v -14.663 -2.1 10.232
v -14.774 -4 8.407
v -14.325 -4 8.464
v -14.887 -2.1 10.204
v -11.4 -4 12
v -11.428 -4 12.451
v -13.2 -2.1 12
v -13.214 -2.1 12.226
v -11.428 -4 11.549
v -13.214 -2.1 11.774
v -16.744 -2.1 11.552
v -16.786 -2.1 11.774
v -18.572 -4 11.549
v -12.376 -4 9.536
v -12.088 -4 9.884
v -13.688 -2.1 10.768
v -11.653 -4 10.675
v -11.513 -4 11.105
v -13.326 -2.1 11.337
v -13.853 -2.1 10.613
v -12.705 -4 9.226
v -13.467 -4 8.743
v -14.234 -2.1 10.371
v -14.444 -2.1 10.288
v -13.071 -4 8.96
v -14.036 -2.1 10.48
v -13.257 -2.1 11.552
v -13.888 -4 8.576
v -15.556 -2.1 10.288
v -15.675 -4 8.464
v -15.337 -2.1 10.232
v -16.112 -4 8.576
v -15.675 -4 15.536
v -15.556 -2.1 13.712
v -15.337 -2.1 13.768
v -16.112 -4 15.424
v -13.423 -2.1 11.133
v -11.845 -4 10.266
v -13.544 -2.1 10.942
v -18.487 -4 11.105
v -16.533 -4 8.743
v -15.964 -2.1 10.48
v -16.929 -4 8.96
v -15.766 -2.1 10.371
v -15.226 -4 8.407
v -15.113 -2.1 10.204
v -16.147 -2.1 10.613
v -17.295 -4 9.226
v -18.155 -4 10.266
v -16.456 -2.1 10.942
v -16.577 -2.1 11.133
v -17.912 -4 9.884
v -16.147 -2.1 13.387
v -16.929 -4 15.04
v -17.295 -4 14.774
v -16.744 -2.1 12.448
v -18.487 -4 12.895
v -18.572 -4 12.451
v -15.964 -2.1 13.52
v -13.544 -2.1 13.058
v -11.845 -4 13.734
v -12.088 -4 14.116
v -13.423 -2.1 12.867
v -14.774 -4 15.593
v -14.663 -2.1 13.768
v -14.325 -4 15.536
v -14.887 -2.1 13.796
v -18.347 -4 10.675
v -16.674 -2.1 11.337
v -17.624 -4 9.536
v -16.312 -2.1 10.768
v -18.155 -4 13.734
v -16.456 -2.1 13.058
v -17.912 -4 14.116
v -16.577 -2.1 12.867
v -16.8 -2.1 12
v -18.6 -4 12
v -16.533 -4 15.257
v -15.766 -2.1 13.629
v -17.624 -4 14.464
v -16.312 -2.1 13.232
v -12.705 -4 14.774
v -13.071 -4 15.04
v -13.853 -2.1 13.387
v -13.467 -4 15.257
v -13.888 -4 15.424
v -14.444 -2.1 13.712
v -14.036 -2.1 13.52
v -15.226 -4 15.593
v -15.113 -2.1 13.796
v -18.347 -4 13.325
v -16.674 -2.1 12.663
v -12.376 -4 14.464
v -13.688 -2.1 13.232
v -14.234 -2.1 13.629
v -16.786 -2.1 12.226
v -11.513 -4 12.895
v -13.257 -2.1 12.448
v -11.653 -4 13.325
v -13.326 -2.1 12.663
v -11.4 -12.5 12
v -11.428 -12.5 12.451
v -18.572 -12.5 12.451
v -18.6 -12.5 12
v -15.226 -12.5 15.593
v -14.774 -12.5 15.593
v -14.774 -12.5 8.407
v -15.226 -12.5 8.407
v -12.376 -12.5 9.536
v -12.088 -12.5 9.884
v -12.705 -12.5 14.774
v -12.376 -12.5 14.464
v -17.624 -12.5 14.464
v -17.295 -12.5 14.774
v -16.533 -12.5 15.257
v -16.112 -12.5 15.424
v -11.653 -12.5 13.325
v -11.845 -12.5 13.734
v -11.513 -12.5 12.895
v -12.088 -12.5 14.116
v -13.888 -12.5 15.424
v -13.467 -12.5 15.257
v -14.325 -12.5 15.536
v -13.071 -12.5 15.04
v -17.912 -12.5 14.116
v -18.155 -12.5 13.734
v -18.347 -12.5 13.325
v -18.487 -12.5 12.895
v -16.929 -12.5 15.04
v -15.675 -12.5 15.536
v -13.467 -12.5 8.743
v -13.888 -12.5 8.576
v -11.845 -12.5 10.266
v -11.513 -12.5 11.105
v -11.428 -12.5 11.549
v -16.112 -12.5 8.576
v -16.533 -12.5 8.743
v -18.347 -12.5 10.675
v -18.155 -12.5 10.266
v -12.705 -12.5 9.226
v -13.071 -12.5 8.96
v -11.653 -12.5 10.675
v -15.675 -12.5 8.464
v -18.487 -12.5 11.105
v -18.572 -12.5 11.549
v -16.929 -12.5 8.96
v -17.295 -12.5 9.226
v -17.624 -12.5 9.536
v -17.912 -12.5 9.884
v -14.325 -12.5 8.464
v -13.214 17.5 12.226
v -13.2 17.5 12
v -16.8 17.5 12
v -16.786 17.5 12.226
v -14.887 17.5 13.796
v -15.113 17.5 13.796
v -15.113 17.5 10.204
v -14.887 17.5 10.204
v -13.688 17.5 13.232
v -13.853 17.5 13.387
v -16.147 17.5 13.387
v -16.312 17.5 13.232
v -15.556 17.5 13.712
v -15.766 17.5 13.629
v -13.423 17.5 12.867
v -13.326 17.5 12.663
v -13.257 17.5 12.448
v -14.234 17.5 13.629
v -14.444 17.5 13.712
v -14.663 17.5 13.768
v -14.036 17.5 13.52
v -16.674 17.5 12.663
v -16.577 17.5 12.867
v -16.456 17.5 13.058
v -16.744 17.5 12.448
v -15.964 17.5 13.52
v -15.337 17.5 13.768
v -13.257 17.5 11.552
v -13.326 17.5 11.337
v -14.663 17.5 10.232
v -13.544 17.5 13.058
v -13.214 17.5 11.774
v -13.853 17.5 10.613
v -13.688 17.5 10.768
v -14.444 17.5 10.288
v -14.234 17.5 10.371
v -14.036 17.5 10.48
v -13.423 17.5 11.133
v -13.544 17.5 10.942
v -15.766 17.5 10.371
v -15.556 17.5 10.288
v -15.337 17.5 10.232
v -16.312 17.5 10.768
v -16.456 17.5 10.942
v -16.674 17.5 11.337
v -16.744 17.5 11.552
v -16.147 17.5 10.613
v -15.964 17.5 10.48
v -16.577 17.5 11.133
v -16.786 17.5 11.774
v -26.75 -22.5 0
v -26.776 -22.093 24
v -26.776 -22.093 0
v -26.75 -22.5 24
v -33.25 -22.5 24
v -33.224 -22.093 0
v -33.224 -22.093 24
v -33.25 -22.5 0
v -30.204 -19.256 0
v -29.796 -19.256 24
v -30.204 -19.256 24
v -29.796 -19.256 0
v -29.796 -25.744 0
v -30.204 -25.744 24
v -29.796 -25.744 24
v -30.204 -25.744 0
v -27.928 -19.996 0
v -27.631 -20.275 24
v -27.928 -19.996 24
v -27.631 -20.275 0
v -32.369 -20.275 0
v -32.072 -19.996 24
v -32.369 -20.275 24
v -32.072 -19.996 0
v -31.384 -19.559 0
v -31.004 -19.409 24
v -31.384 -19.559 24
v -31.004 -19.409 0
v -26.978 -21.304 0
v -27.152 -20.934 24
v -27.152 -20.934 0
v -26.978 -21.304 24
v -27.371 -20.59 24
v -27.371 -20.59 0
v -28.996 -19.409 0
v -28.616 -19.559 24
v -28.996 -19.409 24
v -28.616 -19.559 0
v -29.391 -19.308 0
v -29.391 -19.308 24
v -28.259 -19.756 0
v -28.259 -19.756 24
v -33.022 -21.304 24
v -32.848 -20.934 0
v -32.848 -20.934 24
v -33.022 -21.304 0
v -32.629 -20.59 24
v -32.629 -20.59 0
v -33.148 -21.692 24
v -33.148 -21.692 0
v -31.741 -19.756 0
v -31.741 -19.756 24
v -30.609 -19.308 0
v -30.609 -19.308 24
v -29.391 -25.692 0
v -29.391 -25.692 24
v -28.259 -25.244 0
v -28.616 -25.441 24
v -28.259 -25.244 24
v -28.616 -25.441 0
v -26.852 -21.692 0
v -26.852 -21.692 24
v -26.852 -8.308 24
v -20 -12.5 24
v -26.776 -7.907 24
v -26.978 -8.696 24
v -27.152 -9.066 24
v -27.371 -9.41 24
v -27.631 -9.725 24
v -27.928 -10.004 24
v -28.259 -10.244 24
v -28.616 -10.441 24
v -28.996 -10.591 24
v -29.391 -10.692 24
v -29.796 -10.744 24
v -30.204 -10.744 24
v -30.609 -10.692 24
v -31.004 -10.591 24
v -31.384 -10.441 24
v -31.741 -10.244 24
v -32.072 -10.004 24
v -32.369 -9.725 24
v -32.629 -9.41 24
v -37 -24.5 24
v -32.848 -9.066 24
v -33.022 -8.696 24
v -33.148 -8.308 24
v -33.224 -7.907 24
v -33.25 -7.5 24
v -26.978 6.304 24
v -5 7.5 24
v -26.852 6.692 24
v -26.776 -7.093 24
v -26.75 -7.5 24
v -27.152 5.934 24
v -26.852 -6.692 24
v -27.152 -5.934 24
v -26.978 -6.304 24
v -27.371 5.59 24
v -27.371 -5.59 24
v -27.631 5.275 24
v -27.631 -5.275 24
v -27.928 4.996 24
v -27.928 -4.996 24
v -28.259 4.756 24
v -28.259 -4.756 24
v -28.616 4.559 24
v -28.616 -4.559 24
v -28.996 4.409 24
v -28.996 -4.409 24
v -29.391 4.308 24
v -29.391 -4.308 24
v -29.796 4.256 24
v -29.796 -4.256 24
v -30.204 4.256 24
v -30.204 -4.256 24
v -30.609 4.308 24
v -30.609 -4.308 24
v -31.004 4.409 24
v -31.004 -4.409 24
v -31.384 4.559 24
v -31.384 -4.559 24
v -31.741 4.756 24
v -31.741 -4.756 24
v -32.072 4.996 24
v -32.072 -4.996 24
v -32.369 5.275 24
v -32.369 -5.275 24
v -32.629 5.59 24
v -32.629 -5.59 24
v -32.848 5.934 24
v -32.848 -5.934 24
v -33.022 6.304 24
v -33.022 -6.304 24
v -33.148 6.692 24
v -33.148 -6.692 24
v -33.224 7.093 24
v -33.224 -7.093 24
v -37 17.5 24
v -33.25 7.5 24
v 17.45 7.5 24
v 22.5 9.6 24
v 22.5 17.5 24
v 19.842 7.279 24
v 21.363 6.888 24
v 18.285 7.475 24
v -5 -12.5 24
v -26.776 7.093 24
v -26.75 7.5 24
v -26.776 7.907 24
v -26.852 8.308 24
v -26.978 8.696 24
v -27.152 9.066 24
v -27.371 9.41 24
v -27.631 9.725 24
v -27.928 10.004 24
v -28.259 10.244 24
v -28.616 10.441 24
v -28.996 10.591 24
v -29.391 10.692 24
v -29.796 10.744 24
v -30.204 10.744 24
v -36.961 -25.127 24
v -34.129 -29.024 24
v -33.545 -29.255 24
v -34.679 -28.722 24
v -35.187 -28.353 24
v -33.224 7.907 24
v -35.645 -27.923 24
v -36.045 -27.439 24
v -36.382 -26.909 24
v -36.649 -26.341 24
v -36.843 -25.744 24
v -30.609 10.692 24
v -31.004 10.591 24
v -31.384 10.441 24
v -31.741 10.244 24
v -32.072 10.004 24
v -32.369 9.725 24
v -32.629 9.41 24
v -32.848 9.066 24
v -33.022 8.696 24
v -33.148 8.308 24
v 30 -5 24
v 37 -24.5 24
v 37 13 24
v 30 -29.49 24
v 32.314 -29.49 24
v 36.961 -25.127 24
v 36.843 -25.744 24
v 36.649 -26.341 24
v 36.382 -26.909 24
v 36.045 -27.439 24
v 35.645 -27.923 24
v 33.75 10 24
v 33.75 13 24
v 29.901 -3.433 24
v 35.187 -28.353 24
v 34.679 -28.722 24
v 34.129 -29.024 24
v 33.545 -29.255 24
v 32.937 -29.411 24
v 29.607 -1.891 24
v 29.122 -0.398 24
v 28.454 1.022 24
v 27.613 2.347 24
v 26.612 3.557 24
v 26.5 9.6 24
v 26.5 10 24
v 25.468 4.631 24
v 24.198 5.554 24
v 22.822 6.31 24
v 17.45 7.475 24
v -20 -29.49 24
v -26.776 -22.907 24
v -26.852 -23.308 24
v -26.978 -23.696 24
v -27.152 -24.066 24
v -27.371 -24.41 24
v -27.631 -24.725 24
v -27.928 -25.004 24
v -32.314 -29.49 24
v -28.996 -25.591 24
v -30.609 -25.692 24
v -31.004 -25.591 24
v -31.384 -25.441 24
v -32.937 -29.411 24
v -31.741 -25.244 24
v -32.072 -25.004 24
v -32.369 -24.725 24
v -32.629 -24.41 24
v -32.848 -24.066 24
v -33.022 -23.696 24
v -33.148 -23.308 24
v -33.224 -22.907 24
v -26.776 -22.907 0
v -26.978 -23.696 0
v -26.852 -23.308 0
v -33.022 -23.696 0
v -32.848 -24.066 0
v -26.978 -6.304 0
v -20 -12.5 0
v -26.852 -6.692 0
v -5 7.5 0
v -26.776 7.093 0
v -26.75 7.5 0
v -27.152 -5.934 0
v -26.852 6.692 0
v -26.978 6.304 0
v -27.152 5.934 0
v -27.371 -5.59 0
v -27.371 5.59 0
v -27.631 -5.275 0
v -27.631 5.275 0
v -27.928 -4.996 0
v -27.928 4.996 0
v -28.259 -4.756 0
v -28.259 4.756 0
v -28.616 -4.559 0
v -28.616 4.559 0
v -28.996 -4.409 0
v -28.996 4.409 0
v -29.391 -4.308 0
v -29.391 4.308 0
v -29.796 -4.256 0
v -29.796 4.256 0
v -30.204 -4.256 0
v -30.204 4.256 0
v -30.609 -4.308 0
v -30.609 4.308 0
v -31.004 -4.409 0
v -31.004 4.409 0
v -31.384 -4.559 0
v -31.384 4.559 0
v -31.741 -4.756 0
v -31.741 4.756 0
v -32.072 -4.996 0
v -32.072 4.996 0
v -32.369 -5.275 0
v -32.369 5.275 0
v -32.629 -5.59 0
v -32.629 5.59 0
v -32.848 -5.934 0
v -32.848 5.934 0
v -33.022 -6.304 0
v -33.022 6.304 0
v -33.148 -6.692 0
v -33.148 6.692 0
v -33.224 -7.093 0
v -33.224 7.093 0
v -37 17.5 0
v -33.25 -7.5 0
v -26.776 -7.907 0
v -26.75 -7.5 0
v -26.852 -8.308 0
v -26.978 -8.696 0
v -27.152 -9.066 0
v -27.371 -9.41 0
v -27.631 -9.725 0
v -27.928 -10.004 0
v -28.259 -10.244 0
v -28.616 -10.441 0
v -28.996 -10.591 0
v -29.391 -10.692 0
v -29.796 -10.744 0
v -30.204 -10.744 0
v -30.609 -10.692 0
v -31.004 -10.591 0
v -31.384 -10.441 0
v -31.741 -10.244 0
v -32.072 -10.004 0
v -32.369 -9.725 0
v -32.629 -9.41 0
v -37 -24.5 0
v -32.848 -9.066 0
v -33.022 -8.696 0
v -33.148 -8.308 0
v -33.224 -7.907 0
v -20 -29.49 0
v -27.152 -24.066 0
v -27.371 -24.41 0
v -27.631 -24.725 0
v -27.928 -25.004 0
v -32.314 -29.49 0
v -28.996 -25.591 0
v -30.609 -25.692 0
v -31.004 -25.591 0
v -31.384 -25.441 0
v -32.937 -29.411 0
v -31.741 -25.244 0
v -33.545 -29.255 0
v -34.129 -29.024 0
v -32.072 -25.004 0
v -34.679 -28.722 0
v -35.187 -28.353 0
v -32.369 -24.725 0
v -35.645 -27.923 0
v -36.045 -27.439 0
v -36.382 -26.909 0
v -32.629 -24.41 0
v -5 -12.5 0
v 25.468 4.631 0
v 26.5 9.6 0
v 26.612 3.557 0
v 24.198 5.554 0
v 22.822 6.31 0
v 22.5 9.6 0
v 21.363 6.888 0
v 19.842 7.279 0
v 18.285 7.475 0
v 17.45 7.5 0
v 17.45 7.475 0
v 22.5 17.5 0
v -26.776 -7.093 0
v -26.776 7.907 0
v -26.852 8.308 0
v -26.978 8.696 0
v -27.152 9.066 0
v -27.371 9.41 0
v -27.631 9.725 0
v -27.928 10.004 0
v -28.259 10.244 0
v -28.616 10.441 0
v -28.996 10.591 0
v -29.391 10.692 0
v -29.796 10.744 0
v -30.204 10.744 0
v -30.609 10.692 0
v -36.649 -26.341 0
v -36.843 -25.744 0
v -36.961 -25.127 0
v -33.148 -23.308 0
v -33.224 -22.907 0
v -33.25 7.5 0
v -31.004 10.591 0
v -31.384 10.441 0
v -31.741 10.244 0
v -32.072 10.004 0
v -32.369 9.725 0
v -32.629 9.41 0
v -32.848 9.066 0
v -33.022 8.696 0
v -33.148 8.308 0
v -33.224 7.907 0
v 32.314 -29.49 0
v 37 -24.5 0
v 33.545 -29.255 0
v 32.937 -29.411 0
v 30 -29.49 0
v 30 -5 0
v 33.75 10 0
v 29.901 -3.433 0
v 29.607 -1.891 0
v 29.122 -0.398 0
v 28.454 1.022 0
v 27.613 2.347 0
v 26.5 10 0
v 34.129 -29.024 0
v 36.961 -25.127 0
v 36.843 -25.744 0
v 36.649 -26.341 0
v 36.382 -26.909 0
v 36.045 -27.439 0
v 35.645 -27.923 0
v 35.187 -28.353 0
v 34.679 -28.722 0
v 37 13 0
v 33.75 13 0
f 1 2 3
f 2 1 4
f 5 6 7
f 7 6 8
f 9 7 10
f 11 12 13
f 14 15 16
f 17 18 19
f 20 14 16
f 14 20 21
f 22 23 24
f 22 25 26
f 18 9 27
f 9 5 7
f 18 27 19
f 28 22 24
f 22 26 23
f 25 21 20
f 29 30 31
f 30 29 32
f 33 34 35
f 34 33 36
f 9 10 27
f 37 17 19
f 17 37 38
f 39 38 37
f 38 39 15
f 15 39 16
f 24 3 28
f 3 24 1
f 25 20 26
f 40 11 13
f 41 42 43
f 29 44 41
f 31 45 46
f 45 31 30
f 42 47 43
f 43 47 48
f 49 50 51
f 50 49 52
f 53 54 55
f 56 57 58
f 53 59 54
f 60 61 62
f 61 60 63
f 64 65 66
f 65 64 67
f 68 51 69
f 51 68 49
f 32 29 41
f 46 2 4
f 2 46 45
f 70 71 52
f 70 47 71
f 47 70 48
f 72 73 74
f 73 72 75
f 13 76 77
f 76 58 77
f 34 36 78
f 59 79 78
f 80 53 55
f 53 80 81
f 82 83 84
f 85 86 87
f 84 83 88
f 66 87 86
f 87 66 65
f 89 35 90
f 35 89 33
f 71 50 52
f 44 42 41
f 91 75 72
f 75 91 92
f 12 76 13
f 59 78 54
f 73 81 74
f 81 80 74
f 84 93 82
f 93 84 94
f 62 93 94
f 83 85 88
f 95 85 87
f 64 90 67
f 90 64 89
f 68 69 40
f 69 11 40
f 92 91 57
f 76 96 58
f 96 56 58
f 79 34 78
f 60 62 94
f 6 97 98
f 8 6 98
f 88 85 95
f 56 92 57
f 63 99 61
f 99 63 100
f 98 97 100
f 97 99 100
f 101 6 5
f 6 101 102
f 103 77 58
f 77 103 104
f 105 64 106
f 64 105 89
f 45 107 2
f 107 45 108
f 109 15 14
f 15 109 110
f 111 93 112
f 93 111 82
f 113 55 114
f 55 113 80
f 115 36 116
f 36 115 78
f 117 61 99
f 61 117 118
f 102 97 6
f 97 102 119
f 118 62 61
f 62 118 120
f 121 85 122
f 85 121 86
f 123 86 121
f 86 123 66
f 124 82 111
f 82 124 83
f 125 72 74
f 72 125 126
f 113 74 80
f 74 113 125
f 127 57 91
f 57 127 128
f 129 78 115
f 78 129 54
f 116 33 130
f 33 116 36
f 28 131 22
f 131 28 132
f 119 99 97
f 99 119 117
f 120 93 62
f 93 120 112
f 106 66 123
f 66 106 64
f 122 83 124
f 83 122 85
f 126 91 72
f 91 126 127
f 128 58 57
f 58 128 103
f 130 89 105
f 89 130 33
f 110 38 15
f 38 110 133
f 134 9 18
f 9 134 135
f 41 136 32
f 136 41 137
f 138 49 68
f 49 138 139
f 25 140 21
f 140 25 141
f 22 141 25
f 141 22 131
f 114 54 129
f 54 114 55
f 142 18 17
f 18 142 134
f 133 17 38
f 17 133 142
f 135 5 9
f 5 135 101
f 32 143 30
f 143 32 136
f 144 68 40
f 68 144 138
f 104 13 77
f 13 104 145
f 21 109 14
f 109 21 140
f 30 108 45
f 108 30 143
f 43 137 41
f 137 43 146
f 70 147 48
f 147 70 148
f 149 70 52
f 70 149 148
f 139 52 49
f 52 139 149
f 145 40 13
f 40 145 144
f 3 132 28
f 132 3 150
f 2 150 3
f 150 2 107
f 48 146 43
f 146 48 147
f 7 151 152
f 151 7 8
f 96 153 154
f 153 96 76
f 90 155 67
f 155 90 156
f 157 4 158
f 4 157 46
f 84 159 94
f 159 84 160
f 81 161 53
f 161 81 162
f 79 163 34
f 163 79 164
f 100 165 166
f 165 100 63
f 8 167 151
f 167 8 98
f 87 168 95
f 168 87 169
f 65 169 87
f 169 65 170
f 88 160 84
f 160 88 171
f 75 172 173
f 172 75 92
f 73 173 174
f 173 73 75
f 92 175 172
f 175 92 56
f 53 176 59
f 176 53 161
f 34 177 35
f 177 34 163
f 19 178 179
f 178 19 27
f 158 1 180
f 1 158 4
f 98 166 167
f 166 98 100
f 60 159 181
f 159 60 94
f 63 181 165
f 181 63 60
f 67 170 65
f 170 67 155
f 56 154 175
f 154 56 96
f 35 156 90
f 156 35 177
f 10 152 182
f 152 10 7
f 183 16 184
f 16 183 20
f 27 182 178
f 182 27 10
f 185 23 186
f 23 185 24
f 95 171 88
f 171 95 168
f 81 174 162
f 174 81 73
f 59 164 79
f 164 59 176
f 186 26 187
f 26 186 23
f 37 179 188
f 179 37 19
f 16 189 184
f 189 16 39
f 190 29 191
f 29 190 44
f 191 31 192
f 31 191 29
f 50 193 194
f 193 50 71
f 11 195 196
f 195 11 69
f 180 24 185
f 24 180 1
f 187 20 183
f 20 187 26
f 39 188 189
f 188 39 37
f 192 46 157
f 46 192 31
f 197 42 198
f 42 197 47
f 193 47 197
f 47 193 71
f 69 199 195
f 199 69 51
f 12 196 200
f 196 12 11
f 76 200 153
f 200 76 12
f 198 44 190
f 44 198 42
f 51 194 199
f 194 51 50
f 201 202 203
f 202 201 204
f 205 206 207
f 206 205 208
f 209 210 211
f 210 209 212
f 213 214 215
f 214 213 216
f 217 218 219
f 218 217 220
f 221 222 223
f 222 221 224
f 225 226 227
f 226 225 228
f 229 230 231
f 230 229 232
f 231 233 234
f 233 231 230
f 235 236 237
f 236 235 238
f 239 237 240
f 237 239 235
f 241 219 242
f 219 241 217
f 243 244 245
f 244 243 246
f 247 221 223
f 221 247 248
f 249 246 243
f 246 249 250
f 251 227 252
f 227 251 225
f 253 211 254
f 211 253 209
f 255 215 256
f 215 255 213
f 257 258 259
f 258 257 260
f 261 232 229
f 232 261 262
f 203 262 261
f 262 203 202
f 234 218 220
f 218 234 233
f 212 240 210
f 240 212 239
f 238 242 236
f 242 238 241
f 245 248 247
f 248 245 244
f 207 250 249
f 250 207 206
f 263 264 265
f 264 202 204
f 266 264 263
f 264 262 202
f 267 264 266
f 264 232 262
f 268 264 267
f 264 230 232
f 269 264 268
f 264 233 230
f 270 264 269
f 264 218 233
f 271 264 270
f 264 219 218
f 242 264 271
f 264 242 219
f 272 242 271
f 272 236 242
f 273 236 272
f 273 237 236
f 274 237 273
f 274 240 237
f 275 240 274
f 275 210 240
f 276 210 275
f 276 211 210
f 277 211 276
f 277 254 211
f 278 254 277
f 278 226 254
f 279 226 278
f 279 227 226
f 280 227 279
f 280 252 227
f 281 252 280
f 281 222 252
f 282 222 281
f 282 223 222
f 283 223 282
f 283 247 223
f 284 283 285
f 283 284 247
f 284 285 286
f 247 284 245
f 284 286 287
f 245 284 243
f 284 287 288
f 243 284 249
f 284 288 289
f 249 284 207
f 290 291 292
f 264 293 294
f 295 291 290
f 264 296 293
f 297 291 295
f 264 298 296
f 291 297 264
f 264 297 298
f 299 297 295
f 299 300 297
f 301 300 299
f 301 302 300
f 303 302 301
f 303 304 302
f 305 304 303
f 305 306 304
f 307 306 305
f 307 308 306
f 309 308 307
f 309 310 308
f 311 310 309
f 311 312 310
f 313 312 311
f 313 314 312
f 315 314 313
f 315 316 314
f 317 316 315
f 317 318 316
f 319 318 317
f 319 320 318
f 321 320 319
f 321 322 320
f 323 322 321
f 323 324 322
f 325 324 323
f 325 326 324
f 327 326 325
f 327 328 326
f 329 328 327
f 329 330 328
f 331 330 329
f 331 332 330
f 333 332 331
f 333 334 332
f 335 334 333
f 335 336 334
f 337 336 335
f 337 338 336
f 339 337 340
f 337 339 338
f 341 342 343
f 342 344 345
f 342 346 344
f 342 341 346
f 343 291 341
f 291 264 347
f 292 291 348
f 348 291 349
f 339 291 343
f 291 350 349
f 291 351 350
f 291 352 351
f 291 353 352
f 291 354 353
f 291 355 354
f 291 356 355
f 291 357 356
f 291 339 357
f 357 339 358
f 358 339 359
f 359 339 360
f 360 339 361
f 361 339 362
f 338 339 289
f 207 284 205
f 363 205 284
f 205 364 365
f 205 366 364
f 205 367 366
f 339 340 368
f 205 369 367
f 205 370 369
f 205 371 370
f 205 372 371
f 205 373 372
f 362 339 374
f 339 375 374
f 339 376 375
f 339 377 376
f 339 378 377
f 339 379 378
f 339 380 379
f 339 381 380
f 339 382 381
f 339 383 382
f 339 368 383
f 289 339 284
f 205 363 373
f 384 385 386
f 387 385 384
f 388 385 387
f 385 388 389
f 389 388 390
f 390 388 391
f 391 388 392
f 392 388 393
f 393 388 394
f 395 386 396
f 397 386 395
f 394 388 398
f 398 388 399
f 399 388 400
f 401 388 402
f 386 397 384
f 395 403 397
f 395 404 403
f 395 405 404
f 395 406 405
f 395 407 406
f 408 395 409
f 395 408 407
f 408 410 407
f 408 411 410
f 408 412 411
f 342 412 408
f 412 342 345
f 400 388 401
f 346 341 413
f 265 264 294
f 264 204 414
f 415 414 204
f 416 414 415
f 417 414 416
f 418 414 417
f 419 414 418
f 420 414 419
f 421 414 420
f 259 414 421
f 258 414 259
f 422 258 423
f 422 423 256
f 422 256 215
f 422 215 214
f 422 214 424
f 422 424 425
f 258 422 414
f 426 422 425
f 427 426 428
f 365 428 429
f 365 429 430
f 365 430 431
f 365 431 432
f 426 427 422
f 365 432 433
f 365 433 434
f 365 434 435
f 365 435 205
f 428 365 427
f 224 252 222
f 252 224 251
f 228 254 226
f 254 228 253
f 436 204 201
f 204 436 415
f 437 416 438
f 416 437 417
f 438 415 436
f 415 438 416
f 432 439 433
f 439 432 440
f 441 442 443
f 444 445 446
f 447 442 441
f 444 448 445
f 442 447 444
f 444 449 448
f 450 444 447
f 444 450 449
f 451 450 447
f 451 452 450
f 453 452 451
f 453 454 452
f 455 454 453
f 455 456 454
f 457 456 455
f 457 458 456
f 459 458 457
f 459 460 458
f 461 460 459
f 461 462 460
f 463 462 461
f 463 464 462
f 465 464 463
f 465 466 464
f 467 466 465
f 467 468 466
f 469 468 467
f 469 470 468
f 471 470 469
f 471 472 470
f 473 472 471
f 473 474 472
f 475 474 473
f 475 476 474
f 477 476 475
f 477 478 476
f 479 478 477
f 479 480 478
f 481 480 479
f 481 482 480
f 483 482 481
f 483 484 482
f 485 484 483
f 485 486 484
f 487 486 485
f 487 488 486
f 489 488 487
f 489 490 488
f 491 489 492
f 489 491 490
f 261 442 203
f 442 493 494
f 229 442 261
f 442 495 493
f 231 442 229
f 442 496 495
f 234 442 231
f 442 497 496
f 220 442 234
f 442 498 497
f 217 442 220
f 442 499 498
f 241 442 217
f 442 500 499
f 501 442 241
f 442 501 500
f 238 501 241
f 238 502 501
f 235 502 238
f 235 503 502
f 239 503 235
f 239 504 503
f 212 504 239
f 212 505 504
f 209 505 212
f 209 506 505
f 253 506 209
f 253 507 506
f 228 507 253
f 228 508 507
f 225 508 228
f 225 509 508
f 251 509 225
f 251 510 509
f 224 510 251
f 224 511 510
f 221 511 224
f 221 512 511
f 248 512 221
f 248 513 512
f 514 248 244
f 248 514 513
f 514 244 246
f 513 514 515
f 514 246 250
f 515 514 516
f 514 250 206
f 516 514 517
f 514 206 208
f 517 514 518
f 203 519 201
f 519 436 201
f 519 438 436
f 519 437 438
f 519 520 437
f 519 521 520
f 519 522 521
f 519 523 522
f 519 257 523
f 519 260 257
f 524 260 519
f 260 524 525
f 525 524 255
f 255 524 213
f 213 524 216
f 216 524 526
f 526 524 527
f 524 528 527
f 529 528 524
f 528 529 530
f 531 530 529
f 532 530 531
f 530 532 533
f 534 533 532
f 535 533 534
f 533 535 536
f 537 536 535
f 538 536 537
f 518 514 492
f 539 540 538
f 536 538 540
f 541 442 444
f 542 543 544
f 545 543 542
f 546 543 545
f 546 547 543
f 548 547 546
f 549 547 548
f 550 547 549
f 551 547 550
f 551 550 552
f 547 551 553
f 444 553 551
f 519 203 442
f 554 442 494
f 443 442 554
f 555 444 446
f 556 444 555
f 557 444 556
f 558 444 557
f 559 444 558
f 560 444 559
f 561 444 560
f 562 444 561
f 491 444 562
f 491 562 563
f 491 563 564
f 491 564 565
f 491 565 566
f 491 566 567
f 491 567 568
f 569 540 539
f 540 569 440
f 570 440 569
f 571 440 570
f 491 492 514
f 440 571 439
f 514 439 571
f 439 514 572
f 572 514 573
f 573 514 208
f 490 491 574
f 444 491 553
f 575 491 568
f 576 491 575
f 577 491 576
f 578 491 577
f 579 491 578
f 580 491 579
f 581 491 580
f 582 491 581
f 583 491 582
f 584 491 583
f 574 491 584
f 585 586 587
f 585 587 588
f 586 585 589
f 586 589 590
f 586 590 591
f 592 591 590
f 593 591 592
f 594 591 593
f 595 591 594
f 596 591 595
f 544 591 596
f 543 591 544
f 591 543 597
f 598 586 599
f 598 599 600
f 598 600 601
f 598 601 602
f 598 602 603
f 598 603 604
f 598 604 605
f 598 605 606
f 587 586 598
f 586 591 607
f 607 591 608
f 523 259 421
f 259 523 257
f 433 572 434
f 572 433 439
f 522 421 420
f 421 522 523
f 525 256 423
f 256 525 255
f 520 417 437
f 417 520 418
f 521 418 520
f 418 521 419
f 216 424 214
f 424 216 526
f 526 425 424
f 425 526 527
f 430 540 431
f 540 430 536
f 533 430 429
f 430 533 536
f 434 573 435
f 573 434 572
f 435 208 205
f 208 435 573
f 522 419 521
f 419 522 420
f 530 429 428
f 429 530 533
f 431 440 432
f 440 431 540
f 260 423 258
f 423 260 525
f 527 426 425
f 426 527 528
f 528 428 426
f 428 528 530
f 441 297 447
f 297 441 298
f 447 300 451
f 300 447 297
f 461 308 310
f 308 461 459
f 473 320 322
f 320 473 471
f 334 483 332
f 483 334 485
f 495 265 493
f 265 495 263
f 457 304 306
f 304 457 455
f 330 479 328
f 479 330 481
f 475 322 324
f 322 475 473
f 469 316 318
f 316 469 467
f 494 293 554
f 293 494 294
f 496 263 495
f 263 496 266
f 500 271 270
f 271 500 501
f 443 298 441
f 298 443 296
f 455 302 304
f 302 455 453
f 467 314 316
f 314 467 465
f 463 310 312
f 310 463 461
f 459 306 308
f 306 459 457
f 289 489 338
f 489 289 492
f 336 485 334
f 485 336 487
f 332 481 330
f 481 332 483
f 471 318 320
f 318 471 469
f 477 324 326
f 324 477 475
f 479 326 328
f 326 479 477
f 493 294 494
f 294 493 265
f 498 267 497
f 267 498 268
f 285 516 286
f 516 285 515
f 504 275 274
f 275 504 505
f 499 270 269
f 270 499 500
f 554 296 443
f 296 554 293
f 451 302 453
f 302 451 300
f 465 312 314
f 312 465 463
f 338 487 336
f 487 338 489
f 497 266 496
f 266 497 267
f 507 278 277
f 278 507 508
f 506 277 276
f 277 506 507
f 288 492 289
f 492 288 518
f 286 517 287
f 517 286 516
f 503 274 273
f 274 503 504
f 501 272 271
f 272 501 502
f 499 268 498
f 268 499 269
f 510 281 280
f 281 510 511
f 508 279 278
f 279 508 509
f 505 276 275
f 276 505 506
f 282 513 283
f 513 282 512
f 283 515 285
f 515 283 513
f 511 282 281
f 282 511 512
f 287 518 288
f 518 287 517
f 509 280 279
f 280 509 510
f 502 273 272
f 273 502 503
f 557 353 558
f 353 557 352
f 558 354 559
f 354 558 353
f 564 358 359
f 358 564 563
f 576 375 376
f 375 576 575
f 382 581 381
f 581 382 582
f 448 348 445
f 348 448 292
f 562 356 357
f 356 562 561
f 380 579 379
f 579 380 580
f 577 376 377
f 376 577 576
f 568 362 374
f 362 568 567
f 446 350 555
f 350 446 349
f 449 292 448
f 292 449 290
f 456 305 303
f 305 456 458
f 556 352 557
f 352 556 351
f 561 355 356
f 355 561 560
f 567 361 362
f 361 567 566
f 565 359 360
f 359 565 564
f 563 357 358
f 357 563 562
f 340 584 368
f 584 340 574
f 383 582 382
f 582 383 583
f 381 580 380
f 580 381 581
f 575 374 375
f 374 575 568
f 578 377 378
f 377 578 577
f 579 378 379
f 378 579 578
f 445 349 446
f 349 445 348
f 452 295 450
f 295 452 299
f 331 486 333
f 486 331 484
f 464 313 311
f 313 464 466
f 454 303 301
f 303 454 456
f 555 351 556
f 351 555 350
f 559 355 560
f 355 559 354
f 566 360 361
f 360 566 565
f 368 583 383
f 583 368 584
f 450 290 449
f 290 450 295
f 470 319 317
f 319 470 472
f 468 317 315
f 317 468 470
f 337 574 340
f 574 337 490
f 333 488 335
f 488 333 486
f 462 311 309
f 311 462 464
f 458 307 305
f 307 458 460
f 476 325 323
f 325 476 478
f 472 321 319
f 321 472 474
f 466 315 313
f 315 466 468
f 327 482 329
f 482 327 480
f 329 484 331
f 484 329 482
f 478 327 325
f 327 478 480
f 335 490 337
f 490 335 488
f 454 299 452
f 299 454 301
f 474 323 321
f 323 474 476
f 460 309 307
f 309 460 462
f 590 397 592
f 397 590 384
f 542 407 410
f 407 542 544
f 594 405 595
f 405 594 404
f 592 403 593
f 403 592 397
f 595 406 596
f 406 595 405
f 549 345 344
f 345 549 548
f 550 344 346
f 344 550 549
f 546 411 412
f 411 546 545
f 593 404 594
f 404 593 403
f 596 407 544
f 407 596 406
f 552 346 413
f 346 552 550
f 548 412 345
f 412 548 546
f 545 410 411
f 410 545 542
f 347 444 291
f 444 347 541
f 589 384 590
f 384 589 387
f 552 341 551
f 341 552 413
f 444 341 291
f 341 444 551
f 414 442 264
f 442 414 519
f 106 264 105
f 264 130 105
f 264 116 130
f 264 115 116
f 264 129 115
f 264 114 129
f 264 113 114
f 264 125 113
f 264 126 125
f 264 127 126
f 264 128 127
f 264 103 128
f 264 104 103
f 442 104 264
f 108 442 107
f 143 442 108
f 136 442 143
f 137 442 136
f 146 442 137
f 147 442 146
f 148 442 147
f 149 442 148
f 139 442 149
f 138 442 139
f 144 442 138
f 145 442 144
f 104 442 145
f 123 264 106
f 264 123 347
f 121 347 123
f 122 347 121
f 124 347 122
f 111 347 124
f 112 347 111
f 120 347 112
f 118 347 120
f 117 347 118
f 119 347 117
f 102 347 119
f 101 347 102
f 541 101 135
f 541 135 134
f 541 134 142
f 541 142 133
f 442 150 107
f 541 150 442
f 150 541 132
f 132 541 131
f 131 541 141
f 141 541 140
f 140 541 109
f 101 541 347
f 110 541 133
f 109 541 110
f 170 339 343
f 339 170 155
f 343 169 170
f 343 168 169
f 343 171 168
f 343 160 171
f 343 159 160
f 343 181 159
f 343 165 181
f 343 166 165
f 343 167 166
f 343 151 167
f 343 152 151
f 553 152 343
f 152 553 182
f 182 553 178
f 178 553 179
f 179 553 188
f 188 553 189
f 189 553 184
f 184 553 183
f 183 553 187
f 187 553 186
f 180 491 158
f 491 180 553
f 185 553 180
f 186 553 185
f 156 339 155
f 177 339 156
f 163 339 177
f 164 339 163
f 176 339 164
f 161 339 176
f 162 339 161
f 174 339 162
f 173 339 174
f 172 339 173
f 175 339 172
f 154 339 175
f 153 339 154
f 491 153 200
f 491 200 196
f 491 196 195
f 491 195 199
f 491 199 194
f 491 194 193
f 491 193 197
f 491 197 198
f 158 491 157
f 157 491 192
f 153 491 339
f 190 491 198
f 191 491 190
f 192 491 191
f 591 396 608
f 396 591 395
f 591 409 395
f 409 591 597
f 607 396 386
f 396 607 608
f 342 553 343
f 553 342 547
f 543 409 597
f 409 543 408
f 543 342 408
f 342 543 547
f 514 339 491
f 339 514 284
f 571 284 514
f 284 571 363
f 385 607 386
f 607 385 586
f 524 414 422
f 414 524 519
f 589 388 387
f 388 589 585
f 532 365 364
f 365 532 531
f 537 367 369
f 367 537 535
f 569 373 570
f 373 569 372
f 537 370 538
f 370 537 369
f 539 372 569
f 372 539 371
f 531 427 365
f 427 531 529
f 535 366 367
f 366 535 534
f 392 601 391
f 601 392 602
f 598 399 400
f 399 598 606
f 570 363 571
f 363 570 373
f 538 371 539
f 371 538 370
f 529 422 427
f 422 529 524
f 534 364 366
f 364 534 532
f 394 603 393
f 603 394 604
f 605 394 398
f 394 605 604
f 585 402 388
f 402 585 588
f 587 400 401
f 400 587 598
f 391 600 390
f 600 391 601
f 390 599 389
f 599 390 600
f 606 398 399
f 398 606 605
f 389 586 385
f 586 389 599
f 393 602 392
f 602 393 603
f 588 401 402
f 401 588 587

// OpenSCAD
$fn = 50;


difference() {
	union() {
		hull() {
			translate(v = [-32.0000000000, 24.5000000000, 0]) {
				cylinder(h = 24, r = 5);
			}
			translate(v = [32.0000000000, 24.5000000000, 0]) {
				cylinder(h = 24, r = 5);
			}
			translate(v = [-32.0000000000, -24.5000000000, 0]) {
				cylinder(h = 24, r = 5);
			}
			translate(v = [32.0000000000, -24.5000000000, 0]) {
				cylinder(h = 24, r = 5);
			}
		}
	}
	union() {
		translate(v = [-15, -4, 12.0000000000]) {
			rotate(a = [90, 0, 0]) {
				difference() {
					union() {
						#translate(v = [0, 0, -25.0000000000]) {
							cylinder(h = 25, r = 1.5000000000);
						}
						#translate(v = [0, 0, -1.9000000000]) {
							cylinder(h = 1.9000000000, r1 = 1.8000000000, r2 = 3.6000000000);
						}
						#cylinder(h = 250, r = 3.6000000000);
						#translate(v = [0, 0, -25.0000000000]) {
							cylinder(h = 25, r = 1.8000000000);
						}
						#translate(v = [0, 0, -25.0000000000]) {
							cylinder(h = 25, r = 1.5000000000);
						}
					}
					union();
				}
			}
		}
		translate(v = [-30.0000000000, -22.5000000000, 0]) {
			cylinder(h = 24, r = 3.2500000000);
		}
		translate(v = [-30.0000000000, -7.5000000000, 0]) {
			cylinder(h = 24, r = 3.2500000000);
		}
		translate(v = [-30.0000000000, 7.5000000000, 0]) {
			cylinder(h = 24, r = 3.2500000000);
		}
		translate(v = [17.5000000000, -5, 0.0000000000]) {
			cylinder(h = 24, r = 12.5000000000);
		}
		translate(v = [-5.0000000000, -95.0000000000, 0]) {
			cube(size = [35, 90, 24]);
		}
		translate(v = [-5.0000000000, -95.0000000000, 0]) {
			cube(size = [22.4500000000, 102.5000000000, 24]);
		}
		translate(v = [-20.0000000000, -72.5000000000, 0]) {
			cube(size = [50, 60, 24]);
		}
		translate(v = [-58.5000000000, 17.5000000000, 0]) {
			cube(size = [100, 85, 24]);
		}
		translate(v = [26.2500000000, 10.0000000000, 0]) {
			cube(size = [7.5000000000, 100, 24]);
		}
		translate(v = [33.5000000000, 13.0000000000, 0]) {
			cube(size = [7, 94, 24]);
		}
		translate(v = [22.5000000000, 9.6000000000, 0]) {
			cube(size = [4, 8, 24]);
		}
	}
}
